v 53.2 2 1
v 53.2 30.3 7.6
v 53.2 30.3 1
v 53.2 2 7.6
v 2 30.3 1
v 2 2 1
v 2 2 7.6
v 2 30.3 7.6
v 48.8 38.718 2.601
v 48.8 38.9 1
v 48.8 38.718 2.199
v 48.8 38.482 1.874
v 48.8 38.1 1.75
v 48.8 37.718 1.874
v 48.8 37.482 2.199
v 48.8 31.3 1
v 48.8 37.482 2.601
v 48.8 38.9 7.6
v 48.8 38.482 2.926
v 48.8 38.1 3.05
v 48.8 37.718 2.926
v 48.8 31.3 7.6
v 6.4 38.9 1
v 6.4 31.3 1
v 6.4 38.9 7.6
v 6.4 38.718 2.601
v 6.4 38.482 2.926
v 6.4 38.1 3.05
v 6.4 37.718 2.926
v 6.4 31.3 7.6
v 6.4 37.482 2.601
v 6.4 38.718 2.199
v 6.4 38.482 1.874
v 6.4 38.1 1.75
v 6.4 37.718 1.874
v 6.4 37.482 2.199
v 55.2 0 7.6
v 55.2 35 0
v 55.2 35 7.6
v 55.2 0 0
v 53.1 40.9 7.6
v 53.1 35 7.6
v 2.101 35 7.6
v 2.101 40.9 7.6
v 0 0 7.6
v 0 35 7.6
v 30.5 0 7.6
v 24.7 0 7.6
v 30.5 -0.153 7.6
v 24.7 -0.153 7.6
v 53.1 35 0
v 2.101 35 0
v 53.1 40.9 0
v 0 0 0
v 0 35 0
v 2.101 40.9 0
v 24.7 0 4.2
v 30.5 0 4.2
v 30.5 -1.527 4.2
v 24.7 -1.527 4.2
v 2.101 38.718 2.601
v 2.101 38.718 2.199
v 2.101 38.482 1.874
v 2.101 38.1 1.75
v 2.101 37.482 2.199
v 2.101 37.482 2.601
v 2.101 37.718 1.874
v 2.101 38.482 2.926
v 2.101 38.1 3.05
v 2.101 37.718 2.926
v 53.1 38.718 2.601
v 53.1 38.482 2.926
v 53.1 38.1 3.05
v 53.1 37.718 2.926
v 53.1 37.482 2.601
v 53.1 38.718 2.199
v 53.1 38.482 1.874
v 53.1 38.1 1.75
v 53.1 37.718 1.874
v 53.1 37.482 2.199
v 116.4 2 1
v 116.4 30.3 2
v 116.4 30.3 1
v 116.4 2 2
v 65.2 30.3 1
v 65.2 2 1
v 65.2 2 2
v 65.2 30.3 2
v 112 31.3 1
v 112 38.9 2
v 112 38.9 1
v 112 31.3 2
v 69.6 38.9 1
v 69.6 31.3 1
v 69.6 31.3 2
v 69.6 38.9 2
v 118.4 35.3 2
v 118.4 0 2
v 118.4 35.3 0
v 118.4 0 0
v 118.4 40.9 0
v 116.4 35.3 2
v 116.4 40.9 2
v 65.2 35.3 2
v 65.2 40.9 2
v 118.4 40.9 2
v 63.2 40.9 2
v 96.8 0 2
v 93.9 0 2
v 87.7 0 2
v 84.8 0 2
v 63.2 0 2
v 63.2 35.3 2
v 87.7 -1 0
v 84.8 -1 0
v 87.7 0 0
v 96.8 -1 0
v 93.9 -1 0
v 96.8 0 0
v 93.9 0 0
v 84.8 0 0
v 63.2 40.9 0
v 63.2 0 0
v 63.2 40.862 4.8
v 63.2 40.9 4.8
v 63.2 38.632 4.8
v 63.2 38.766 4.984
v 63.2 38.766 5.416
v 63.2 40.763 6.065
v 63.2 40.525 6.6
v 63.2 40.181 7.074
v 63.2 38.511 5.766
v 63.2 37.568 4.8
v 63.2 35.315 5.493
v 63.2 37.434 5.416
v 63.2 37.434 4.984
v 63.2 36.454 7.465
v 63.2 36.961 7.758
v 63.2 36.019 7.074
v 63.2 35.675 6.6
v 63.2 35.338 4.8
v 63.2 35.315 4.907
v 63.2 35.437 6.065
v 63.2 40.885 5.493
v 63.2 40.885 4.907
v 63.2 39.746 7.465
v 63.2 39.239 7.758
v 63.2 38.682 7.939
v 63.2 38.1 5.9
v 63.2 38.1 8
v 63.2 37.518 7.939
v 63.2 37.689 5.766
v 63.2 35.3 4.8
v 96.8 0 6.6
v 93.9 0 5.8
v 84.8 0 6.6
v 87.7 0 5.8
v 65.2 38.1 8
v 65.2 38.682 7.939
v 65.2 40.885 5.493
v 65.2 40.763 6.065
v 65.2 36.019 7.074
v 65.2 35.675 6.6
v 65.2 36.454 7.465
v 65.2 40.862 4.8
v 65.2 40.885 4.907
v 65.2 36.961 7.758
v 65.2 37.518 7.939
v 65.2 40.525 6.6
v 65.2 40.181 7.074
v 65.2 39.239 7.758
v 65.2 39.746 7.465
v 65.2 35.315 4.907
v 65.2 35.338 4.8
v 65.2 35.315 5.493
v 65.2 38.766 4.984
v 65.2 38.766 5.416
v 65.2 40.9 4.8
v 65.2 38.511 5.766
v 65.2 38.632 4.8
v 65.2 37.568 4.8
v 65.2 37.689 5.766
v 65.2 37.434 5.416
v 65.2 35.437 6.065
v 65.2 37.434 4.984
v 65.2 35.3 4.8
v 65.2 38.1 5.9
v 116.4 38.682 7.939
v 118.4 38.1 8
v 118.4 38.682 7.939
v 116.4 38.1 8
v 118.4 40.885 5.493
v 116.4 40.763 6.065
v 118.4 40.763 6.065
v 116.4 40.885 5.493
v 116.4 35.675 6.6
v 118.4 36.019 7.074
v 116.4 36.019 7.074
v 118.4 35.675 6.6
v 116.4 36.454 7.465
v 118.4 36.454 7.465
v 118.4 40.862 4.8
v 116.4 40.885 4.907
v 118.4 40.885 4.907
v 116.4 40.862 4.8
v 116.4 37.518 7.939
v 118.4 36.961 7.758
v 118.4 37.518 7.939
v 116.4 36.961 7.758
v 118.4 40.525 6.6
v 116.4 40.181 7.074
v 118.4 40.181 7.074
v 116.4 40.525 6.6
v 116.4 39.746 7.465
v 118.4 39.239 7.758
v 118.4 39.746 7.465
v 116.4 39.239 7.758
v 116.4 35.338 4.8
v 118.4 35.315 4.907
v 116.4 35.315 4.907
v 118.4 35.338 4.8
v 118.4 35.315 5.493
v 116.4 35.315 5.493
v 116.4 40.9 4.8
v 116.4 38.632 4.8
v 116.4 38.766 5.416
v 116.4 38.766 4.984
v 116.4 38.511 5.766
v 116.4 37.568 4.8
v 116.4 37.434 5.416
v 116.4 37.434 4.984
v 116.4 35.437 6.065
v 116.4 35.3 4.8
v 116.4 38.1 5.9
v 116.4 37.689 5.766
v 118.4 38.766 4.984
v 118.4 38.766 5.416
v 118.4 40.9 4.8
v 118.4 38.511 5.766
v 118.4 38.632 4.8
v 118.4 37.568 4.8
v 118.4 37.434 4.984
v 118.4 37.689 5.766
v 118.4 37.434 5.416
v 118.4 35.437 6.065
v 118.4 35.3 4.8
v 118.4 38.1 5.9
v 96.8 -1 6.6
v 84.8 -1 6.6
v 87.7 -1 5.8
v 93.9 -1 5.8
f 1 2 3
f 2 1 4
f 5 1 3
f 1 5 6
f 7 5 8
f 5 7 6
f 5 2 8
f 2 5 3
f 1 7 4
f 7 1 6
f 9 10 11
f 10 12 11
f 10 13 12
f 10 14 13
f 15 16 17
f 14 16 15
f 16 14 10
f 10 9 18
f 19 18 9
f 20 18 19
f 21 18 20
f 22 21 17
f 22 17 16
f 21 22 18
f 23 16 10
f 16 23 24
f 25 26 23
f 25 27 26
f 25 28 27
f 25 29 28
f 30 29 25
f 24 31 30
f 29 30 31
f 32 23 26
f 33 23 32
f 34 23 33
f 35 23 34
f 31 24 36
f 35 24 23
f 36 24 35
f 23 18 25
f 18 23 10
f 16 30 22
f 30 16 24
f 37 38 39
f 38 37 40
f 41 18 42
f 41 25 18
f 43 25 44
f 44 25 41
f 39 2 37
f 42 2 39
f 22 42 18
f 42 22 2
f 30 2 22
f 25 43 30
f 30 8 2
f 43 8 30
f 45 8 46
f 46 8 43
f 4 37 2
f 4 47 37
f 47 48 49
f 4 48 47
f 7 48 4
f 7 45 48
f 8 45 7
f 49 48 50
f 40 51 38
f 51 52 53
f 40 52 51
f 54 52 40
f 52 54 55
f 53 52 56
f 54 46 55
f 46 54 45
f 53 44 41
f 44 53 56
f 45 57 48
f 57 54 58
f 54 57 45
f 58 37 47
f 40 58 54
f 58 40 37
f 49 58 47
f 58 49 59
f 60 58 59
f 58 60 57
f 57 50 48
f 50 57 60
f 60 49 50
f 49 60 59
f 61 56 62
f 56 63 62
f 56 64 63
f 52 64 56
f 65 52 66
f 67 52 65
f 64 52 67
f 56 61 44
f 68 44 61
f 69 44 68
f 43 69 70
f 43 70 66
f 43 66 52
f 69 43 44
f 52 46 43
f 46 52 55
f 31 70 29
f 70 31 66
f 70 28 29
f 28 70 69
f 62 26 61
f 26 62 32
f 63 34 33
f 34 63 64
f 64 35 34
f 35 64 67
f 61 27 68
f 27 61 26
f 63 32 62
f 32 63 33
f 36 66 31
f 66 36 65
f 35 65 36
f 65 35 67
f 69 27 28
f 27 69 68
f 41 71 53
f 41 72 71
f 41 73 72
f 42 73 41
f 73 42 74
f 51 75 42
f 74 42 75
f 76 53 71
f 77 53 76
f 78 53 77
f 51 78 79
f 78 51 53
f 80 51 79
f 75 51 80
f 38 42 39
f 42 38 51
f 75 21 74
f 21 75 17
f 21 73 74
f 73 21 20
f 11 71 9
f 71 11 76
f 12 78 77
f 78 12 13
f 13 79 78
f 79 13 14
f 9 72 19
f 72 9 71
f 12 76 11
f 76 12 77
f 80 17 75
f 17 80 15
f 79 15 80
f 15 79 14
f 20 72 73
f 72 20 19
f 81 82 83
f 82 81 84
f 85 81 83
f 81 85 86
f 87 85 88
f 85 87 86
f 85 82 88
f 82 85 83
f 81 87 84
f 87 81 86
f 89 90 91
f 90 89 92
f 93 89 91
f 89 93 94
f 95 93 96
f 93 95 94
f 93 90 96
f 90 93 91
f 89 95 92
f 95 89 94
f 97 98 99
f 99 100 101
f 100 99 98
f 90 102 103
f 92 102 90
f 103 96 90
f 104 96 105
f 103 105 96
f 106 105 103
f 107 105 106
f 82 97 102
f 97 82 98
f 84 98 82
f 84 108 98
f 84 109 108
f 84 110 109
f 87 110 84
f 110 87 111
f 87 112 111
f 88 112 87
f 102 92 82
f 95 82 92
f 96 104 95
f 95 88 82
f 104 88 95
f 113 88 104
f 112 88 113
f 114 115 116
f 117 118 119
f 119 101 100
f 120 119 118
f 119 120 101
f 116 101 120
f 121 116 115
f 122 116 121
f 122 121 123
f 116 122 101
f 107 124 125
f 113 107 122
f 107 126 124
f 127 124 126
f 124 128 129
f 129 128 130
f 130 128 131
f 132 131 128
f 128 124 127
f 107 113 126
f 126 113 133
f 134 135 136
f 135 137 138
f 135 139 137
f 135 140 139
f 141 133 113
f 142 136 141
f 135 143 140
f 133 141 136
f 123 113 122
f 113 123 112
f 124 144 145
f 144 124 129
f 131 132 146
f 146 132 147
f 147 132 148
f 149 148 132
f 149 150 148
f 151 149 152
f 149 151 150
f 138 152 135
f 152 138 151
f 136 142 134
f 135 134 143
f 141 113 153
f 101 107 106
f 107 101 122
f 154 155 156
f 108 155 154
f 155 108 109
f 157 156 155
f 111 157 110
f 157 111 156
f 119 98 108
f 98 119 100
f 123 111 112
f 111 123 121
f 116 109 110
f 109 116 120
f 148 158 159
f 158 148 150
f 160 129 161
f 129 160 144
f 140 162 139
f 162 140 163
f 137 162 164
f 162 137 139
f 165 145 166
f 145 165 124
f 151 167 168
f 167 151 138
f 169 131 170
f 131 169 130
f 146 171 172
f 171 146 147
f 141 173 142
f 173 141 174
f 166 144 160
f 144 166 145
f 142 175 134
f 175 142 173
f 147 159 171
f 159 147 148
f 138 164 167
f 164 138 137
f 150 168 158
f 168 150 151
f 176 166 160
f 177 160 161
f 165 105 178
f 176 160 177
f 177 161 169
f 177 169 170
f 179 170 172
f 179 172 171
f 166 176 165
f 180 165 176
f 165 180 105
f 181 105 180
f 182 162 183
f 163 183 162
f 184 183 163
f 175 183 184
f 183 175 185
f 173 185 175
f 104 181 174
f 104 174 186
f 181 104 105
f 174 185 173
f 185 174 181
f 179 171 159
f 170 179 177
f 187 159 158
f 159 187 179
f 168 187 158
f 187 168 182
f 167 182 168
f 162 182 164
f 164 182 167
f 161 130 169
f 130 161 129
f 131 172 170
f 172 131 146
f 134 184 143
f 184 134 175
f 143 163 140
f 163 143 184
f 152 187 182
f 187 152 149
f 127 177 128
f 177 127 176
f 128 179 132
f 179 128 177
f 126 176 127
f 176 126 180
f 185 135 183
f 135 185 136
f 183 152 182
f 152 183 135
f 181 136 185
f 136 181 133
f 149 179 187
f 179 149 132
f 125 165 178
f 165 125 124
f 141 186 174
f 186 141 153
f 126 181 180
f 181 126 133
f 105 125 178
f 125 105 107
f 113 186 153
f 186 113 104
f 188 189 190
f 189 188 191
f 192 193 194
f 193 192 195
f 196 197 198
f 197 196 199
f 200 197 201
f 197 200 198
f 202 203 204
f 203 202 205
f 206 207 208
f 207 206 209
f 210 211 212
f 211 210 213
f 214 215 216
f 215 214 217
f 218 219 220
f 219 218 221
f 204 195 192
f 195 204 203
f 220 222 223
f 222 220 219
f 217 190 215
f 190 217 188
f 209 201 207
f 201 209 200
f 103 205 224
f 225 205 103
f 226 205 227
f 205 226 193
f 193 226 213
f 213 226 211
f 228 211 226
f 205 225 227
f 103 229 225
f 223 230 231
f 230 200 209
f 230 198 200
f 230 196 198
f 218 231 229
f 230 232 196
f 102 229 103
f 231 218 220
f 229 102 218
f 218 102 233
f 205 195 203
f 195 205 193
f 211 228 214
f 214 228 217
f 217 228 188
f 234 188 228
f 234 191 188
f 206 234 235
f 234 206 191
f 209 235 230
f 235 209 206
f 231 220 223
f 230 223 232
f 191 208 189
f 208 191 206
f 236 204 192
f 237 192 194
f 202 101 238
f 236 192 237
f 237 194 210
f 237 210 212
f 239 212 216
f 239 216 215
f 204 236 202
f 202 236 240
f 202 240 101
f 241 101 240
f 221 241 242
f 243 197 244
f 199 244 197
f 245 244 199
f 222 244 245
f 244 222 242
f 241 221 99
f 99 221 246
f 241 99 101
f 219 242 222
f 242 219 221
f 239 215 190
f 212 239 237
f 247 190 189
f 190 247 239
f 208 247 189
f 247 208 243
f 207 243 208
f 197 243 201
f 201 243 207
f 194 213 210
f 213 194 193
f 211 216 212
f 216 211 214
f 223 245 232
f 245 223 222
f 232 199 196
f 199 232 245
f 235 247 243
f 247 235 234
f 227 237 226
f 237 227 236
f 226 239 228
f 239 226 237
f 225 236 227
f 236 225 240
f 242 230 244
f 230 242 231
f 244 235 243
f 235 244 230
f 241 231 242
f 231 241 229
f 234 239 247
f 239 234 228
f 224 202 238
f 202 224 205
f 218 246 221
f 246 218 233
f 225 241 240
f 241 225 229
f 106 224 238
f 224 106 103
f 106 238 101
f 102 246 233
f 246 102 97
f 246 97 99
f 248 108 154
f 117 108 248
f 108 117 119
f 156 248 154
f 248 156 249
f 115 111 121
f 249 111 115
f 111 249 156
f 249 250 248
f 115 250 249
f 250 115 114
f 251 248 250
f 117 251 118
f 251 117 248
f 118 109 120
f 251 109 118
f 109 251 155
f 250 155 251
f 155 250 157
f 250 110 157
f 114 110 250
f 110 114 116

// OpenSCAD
width  = 51.2;
depth  = 28.3;
height =  7.6;

bit_holder_d   =  7.6;
bit_holder_len = 42.4;

module case(h) {
  difference() {
    cube([width+4, depth+bit_holder_d+5, h]);
    color("red")
    translate([2, 2, 1]) {
      cube([width, depth, height]);
      translate([(width - bit_holder_len)/2, depth + 1, 0])
      cube([bit_holder_len, bit_holder_d, height]);
    }
  }
}

module rotate_outer(x) {
  color("blue")
  translate([x+1, depth + bit_holder_d + 2.2, (height-2)/4+1]) {
    difference() {
      translate([0, 0, (height-2)/2])
        rotate([0, 90, 0])
        cylinder(2, d=height-2, $fn=30, center=true);
      translate([0, 0, (height-2)/2])
        rotate([0, 90, 0])
        cylinder(8, d=1.4, $fn=10, center=true);
    }
    cube([2, height-2, (height-2)/2+2], center=true);
  }
}

module rotate_inner(x) {
  color("black")
  translate([x, depth+bit_holder_d+6.7-height, -0.001])
    cube([2.101, height-1.2, 20]);
  //translate([0, 0, (height-2)/2])
  translate([x+1, depth + bit_holder_d + 2.2, height-((height-2)/4+1 + (height-2)/2)])
    rotate([0, 90, 0])
    cylinder(12, d=1.3, $fn=10, center=true);
}

// case bottom
difference() {
  case(height);
  rotate_inner(0);
  rotate_inner(width+2-0.1);
}

// catch
difference() {
  color("black")
  translate([(width+4)/2 - 2.9, -2, height - (height-4.2)])
  cube([5.8, 3, height-4.2]);

  translate([(width+4)/2 - 5, -7, 4])
  rotate([-22, 0, 0])
  cube([10, 5, height]);
}

// case top
translate([width + 12, 0, 0]) {
  case(2);
  rotate_outer(0);
  rotate_outer(width+2);

  difference() {
    translate([(width+4)/2 - 6, -1, 0])
    cube([12, 1, height-1]);
    color("black")
    translate([(width+4)/2 - 3.1, -2, 0])
    cube([6.2, 6, height-1.8]);
  }
}
